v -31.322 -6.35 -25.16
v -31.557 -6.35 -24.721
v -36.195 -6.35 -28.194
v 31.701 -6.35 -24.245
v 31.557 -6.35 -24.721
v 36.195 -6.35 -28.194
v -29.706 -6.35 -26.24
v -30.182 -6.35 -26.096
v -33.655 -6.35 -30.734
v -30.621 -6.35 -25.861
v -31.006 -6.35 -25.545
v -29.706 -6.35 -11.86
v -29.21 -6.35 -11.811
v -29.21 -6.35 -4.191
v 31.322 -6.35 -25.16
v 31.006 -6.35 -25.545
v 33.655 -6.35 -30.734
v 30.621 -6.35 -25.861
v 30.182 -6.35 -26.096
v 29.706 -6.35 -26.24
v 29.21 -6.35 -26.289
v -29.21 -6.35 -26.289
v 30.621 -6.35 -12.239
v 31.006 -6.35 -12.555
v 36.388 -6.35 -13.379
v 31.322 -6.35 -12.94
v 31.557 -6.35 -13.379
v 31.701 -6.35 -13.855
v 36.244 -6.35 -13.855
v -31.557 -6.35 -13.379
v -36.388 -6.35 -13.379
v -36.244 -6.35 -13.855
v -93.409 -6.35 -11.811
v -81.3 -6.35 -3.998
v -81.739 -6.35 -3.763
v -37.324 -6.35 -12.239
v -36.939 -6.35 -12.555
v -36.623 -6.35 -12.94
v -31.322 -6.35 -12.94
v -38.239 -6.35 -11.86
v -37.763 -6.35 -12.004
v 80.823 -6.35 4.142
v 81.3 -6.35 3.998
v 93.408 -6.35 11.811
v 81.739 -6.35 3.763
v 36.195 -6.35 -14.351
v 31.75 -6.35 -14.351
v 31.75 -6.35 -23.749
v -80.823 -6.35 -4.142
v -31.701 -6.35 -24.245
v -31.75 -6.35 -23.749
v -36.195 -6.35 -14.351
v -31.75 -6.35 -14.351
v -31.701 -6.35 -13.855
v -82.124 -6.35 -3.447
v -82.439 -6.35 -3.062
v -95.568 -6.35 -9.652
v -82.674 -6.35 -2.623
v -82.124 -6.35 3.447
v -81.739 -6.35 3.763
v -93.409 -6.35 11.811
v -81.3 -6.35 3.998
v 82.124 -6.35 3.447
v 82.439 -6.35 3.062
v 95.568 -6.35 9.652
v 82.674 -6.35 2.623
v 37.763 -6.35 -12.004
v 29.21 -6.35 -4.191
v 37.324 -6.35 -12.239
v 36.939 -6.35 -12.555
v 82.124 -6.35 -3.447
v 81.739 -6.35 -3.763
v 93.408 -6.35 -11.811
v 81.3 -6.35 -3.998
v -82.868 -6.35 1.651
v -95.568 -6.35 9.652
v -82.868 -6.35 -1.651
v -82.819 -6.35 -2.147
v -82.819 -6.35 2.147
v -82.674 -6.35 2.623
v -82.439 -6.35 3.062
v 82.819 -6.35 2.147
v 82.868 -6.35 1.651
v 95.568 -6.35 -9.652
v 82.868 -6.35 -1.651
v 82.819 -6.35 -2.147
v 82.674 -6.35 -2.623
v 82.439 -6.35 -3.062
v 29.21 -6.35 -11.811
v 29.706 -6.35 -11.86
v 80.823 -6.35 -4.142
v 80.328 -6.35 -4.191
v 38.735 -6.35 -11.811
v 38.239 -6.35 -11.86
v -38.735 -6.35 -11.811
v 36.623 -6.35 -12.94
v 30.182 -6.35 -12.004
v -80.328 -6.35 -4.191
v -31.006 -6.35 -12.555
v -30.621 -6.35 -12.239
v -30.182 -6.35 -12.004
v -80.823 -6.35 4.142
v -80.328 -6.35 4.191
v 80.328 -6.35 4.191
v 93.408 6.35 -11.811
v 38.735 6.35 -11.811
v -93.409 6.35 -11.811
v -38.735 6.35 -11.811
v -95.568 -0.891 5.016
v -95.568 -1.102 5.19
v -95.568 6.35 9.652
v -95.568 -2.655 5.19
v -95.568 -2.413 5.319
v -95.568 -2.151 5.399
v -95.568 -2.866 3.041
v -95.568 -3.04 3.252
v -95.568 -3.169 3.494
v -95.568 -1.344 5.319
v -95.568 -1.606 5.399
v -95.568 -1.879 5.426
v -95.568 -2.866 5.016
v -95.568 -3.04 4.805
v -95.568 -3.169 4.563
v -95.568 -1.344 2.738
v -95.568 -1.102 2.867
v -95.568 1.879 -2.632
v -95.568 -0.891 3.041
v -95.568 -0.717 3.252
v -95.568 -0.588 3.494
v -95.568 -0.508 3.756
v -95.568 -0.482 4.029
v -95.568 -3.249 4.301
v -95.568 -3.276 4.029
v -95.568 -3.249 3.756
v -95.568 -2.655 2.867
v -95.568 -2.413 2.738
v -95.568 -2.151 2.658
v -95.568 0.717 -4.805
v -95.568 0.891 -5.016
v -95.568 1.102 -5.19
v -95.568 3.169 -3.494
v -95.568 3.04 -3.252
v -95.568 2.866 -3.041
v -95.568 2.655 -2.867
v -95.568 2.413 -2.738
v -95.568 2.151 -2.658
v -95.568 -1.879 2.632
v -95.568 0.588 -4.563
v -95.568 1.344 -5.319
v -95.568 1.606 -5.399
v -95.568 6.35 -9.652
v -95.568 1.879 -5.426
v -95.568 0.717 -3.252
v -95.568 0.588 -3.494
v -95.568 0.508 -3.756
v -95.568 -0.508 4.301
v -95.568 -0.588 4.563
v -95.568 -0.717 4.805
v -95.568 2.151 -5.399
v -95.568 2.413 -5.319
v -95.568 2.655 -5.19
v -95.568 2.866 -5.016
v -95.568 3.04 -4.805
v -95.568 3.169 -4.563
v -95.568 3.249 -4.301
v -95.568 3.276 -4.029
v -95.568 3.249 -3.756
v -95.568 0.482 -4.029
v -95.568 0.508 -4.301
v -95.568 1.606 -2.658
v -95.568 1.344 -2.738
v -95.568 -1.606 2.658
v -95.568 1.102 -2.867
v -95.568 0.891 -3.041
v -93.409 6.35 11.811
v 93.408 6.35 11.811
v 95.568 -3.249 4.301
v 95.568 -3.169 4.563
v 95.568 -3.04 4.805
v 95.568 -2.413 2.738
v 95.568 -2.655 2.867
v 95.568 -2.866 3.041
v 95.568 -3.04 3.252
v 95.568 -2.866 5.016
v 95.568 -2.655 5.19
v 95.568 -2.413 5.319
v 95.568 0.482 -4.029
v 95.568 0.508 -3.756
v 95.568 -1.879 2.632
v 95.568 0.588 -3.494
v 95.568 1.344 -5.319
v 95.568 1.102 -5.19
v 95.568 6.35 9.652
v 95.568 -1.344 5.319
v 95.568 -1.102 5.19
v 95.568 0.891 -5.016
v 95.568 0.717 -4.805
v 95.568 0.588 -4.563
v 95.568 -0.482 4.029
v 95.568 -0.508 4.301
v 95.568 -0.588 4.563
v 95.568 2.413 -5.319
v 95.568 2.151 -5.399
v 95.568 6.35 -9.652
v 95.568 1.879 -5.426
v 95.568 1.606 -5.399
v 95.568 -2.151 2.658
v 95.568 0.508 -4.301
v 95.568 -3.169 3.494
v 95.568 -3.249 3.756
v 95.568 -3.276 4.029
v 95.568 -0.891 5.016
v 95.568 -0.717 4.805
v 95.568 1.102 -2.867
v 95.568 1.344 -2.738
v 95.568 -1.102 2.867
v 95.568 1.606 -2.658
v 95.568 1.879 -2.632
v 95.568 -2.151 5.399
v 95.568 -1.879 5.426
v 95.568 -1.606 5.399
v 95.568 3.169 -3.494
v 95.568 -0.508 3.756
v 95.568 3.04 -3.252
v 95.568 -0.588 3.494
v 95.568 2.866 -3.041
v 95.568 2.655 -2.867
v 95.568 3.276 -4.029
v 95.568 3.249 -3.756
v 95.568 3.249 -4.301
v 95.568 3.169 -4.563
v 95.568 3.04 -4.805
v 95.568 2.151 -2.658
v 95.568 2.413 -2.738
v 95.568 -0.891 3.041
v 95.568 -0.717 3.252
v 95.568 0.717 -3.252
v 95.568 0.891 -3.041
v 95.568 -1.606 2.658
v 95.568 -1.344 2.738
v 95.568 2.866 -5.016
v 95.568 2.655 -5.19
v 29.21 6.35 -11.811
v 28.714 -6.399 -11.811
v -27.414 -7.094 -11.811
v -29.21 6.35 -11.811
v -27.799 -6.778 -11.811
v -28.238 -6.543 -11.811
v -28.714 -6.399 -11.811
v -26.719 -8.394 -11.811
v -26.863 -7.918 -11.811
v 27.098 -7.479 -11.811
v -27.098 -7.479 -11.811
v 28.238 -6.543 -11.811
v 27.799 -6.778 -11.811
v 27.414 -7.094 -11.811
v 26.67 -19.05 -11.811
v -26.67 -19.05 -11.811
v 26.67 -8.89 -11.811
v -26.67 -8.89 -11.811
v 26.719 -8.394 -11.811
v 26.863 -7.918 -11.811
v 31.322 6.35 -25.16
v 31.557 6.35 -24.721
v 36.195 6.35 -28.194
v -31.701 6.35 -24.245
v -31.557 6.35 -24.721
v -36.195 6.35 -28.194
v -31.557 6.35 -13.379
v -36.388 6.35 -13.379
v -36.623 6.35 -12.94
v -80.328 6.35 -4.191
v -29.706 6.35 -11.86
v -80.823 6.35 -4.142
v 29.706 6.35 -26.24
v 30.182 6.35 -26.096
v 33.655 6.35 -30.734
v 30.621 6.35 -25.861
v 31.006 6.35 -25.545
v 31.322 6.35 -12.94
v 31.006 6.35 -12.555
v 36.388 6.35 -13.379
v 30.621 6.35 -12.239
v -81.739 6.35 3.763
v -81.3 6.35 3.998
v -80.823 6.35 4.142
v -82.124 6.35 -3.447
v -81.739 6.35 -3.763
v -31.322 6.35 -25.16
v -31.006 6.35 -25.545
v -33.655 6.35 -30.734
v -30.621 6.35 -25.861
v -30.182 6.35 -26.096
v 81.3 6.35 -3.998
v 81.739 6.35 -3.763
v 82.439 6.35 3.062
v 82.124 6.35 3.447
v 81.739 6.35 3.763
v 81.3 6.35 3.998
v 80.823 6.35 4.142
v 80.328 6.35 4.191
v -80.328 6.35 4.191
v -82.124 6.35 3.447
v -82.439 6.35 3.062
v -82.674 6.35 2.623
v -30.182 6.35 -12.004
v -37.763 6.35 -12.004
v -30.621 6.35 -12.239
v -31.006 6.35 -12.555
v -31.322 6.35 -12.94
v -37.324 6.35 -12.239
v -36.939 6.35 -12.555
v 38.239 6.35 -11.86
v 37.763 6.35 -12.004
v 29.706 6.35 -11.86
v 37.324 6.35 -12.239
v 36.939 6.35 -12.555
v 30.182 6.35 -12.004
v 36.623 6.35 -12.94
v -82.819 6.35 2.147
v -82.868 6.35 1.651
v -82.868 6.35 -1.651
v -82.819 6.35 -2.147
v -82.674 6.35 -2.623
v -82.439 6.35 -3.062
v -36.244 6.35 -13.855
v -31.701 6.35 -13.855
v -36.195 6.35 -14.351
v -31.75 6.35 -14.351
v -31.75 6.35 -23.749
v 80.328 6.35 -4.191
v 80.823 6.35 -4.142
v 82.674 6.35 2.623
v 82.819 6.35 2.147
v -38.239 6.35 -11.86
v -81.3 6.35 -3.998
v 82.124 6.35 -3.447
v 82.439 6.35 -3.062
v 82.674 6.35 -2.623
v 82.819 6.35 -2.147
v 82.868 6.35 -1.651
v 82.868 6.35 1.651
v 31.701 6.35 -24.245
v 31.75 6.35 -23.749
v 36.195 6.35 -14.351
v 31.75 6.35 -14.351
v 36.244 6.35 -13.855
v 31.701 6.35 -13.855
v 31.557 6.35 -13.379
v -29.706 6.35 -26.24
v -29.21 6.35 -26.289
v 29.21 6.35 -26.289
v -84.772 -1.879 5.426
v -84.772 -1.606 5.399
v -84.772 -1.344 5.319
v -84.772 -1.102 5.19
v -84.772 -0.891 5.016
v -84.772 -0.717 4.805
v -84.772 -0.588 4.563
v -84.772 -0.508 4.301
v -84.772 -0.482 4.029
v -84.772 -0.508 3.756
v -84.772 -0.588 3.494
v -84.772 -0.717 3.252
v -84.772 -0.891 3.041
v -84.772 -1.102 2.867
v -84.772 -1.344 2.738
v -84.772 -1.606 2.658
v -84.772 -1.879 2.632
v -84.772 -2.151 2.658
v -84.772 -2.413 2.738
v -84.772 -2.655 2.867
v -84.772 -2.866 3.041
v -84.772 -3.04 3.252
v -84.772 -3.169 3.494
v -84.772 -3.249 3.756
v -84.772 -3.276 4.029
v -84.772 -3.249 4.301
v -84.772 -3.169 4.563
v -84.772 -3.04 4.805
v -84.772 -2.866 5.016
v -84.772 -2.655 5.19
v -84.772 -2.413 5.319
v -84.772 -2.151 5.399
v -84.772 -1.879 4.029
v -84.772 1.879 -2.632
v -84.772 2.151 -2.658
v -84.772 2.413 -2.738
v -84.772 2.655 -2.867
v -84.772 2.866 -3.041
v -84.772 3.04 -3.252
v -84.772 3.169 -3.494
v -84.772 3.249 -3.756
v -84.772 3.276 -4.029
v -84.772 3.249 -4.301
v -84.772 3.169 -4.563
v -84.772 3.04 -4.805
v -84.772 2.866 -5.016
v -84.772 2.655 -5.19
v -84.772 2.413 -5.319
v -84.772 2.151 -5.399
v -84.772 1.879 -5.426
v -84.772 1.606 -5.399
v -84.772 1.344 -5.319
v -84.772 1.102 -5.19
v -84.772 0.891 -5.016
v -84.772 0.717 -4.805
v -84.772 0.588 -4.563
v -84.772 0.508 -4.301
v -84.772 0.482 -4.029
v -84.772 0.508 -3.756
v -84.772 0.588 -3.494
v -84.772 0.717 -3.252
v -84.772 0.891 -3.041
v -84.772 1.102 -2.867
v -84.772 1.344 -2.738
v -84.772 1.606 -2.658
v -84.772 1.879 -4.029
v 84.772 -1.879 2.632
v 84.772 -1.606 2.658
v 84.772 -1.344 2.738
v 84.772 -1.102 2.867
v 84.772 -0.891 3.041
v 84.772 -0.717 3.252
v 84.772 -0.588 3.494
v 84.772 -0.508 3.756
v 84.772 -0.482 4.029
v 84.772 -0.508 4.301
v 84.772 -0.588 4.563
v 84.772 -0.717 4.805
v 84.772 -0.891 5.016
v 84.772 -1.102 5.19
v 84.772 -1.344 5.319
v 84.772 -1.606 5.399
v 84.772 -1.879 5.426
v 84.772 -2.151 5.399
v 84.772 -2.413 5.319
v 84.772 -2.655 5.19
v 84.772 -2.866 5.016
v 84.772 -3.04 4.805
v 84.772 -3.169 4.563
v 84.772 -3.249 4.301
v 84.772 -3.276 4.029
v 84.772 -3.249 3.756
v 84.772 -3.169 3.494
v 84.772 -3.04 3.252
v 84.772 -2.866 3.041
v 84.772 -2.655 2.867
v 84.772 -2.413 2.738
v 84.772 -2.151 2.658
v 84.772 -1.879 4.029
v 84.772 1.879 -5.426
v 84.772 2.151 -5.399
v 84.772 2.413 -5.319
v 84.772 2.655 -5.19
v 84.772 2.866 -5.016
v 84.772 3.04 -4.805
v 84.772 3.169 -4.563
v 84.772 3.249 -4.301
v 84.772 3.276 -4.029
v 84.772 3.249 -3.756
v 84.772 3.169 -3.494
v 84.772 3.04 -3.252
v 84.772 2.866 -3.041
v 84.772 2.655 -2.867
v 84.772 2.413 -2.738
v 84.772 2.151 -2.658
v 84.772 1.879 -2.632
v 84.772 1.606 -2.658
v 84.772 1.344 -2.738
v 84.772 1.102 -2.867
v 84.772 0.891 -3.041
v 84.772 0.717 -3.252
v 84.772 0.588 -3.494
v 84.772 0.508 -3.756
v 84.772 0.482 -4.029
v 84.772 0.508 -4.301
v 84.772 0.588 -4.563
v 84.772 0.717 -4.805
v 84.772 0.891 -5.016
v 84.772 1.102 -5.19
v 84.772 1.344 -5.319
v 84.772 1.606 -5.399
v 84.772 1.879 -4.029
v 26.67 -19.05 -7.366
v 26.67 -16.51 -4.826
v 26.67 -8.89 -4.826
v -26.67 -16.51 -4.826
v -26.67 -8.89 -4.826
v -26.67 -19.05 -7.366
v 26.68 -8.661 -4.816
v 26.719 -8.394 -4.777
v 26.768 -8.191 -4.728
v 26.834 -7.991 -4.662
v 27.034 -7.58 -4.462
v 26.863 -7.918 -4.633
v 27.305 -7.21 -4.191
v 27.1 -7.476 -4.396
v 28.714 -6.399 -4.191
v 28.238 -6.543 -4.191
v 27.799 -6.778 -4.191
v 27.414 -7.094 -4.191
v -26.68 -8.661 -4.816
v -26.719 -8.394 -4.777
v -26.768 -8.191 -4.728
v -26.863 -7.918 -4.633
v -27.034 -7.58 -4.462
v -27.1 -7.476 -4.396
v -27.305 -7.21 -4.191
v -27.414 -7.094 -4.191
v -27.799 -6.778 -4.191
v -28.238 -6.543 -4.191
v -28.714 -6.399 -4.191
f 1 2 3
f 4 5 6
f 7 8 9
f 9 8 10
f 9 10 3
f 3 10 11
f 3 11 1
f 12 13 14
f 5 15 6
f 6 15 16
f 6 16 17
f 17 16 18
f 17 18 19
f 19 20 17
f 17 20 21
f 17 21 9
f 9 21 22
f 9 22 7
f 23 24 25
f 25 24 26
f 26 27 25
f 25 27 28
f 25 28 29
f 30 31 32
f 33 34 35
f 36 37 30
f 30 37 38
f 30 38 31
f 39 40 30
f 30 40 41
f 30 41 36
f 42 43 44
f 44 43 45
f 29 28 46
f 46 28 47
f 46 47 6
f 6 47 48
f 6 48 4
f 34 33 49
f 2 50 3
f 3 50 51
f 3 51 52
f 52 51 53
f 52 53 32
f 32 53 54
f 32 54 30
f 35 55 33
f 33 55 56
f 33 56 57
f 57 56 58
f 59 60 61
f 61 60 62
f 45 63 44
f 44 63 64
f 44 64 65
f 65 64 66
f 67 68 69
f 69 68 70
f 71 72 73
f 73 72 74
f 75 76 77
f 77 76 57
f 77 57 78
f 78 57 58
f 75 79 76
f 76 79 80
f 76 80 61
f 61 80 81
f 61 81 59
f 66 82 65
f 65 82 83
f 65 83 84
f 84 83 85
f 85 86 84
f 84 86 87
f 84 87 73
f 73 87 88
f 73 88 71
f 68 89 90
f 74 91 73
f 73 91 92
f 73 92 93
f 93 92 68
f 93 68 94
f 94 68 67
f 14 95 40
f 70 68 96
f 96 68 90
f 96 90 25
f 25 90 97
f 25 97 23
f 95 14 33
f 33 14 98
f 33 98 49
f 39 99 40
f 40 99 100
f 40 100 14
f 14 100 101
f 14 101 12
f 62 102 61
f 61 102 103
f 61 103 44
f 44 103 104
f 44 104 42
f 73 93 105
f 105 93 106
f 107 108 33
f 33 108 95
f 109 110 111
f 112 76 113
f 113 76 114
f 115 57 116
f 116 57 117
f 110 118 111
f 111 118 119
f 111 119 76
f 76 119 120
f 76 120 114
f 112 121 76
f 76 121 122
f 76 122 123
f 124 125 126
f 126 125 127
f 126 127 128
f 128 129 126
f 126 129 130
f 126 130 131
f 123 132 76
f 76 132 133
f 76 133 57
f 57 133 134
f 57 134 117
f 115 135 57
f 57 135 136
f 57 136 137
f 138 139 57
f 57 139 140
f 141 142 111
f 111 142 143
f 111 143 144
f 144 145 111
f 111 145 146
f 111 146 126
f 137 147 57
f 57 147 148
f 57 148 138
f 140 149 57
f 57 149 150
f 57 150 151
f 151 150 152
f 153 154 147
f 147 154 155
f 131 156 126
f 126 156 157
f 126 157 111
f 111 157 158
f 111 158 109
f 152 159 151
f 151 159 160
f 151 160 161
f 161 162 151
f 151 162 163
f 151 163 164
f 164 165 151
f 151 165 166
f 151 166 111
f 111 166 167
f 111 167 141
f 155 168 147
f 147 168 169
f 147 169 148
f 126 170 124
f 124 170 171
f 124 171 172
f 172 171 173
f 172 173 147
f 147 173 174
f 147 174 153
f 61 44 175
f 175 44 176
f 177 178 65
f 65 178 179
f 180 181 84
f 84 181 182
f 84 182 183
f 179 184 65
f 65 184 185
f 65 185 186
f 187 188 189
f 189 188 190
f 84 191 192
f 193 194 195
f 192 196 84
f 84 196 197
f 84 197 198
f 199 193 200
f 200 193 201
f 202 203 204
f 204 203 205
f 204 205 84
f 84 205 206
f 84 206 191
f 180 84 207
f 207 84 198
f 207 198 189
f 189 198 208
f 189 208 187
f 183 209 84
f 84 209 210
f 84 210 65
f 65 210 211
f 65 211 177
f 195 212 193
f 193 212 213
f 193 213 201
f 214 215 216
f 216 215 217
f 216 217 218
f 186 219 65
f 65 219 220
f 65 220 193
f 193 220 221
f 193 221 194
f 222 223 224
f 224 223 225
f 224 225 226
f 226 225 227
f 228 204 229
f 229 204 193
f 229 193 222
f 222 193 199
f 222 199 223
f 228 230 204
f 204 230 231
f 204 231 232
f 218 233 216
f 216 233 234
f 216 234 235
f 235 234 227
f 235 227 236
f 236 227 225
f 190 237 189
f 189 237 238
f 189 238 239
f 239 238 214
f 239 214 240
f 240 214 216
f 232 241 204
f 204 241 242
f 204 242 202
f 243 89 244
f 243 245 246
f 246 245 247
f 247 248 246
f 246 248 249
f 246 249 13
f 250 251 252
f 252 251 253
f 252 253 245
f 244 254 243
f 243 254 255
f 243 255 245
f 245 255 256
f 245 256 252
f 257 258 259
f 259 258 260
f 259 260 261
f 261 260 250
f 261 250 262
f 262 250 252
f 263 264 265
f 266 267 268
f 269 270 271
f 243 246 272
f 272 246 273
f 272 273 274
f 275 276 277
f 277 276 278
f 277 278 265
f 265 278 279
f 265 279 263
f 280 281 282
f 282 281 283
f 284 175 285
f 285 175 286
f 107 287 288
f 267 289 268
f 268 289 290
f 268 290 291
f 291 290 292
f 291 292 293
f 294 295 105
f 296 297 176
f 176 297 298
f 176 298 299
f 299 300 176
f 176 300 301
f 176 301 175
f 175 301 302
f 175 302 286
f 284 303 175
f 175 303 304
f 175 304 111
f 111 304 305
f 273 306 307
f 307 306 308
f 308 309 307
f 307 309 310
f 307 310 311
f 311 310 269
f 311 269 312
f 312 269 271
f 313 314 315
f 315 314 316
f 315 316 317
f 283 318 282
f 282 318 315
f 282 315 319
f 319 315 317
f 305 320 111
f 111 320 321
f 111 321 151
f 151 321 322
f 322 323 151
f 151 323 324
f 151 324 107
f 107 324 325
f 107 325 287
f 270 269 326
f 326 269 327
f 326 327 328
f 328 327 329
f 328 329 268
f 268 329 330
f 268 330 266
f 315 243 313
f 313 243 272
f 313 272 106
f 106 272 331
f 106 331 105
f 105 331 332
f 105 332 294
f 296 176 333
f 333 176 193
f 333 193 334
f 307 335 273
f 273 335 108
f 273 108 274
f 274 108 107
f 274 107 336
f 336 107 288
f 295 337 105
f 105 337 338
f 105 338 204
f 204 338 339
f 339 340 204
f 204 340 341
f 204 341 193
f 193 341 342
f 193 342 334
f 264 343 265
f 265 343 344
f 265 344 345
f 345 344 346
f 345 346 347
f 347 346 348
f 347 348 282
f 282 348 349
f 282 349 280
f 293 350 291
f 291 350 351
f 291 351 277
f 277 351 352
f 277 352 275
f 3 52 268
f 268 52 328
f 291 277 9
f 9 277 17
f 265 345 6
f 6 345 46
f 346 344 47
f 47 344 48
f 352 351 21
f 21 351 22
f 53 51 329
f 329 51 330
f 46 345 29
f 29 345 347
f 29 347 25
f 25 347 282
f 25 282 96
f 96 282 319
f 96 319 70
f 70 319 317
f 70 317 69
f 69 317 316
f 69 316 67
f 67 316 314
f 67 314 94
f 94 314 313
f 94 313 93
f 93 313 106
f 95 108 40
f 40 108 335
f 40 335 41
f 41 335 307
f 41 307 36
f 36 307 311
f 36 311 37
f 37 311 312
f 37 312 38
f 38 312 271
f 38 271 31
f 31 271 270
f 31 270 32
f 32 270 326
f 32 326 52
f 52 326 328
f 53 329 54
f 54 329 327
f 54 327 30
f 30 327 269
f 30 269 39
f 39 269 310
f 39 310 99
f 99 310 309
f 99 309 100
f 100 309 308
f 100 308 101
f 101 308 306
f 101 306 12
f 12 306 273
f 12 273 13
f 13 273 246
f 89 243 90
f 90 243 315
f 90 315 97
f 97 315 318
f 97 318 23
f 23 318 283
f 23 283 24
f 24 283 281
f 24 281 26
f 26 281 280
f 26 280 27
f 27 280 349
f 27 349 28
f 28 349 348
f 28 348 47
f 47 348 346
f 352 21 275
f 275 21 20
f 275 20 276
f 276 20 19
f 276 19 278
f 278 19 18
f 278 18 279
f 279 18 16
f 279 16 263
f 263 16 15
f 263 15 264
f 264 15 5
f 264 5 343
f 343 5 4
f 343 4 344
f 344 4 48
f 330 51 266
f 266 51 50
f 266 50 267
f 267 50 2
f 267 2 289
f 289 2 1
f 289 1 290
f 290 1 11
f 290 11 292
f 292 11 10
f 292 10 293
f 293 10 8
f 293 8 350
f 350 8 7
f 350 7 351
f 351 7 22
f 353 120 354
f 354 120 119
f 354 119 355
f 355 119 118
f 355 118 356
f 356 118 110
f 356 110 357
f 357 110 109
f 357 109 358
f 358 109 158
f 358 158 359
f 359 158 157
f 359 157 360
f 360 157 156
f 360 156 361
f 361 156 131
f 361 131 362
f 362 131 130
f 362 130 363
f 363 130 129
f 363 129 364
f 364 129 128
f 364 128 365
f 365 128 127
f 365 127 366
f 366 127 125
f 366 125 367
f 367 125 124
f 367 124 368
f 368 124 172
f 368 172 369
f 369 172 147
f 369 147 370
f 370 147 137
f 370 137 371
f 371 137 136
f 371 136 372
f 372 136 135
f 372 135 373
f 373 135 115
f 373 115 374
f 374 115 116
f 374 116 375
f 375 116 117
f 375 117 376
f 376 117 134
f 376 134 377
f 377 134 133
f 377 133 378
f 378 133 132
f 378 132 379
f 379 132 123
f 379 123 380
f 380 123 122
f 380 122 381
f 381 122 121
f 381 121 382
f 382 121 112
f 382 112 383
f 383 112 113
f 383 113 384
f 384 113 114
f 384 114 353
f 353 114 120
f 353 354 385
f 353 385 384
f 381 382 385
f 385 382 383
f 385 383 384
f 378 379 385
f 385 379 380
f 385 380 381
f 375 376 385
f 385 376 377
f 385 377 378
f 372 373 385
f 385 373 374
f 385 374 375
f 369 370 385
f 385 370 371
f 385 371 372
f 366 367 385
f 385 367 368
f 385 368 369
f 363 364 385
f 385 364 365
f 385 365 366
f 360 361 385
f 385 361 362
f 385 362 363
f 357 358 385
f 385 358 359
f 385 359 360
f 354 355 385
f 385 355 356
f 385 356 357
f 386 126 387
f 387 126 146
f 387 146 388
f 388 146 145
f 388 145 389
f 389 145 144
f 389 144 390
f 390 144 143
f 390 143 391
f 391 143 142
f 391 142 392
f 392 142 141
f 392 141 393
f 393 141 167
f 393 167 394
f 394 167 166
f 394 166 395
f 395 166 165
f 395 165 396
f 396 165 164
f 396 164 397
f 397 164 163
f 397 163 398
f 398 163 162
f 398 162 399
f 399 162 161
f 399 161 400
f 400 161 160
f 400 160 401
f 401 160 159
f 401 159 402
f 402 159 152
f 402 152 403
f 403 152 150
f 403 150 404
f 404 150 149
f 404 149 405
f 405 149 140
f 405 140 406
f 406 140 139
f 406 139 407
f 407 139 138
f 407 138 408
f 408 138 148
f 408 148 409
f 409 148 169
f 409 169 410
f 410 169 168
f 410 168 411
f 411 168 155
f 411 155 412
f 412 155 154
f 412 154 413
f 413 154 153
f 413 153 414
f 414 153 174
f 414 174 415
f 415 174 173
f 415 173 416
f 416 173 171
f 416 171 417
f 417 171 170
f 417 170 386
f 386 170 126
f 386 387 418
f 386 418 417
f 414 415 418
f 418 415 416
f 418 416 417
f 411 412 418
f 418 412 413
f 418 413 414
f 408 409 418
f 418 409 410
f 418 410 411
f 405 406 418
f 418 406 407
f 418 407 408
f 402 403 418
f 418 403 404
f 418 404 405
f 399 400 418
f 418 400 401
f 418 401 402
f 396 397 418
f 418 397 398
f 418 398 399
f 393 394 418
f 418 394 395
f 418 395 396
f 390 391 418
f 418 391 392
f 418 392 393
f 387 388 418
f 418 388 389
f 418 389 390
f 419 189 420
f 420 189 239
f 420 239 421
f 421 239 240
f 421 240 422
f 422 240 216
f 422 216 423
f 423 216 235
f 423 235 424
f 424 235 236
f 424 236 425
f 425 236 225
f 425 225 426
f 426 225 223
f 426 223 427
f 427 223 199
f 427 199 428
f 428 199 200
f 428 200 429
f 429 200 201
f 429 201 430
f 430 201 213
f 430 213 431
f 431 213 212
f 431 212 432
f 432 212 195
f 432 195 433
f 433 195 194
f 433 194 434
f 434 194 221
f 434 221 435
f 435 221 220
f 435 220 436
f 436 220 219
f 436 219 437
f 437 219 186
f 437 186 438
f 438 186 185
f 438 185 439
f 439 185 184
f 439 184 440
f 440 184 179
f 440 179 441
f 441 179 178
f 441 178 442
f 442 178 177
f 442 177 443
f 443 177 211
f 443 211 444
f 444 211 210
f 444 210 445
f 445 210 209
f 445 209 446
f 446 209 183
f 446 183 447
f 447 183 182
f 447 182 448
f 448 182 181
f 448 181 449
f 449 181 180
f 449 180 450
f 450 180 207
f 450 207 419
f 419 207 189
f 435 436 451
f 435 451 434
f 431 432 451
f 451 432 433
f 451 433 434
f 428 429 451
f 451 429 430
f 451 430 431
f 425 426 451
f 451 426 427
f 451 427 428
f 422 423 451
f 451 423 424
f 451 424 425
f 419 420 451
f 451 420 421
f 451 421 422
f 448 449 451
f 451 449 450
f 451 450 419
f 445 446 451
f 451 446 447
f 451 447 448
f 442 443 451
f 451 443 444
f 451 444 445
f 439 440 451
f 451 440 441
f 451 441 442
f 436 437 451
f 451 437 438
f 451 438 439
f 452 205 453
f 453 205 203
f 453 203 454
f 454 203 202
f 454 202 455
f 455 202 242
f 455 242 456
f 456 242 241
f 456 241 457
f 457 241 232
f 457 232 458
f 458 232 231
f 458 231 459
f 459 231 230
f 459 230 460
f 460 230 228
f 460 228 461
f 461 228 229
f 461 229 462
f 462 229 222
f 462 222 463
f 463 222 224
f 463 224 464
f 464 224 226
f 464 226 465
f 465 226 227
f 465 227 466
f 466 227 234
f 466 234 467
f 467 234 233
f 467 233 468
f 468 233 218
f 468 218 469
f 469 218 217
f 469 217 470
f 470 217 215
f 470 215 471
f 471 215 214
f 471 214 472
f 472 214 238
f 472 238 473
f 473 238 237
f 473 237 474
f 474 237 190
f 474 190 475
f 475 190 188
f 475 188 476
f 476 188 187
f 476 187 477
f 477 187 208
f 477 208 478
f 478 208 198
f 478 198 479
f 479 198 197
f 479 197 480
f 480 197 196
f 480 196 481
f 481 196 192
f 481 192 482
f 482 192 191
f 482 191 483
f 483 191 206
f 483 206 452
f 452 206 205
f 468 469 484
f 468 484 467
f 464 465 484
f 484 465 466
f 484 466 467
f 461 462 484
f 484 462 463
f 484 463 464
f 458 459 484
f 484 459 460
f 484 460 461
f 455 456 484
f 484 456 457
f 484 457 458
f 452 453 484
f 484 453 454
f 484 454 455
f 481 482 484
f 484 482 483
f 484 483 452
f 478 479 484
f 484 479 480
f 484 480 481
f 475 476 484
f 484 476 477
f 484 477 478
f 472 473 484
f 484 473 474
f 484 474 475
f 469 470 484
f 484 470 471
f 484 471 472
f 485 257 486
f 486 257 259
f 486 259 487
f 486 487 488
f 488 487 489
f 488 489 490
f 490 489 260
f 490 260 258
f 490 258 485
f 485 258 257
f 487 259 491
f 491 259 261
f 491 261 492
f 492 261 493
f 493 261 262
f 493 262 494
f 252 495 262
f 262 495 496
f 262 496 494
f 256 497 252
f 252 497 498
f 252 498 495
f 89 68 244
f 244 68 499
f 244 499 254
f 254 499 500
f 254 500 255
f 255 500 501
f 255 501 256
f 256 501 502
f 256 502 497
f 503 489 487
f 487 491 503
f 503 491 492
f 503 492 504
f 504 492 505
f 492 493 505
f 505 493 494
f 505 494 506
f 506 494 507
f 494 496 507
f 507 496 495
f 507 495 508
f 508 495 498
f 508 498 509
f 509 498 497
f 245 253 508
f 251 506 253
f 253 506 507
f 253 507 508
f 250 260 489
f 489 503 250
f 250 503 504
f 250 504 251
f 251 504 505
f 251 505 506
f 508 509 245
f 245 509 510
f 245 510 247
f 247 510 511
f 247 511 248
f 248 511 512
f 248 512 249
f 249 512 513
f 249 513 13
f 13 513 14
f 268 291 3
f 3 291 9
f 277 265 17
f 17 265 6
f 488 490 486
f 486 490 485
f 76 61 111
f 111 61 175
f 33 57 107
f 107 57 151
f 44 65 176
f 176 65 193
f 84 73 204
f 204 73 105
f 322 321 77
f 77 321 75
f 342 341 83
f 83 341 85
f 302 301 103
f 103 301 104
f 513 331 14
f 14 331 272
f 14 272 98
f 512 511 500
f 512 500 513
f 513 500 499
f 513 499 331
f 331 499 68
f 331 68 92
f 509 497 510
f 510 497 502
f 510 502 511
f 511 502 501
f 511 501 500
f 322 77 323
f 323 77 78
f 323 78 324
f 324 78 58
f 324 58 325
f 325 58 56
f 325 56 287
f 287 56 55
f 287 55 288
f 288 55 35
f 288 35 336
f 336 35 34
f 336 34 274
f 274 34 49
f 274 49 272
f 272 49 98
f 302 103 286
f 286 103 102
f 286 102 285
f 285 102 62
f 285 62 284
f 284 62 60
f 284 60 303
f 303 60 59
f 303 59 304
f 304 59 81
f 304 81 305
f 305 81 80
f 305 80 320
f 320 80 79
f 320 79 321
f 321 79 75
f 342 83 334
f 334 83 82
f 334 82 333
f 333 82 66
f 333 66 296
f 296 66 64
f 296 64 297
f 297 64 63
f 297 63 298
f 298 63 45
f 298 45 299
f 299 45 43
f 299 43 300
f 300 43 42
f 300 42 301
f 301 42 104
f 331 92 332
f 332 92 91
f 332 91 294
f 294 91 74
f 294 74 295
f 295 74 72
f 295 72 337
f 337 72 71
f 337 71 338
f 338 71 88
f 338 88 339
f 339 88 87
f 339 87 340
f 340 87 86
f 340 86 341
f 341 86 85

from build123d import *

# Parameters (mm, degrees)
SKETCH2_W              = 191.135
SKETCH2_H              = 23.622
MOUNT_BAR_DEPTH        = 6.35
MOUNT_FEATURE_DEPTH    = 12.7
FILLET1_R              = 2.54
SKETCH5_R              = 1.397
MOUNT_HOLES_DEPTH      = 10.795
SKETCH6_W              = 53.34
SKETCH6_H              = 6.985
BOSS_EXTRUDE5_DEPTH    = 12.7
FILLET2_R              = 2.54
CHAMFER1_SIZE          = 2.54
CHAMFER2_SIZE          = 2.159
SKETCH7_W              = 165.735
SKETCH7_H              = 8.382
WEIGHT_REDUCTION_DEPTH = 104.551367988
FILLET3_R              = 2.54


with BuildPart() as part:
    # Sketch2 → Mount-Bar (new, symmetric)
    with BuildSketch(Plane(origin=(0, 0, 0), x_dir=(1, 0, 0), z_dir=(0, 1, 0))):
        Rectangle(SKETCH2_W, SKETCH2_H)
    extrude(amount=MOUNT_BAR_DEPTH, both=True)

    # Sketch4 → Mount-Feature (add)
    with BuildSketch(Plane(origin=(0, 6.35, 0), x_dir=(1, 0, 0), z_dir=(0, 1, 0))):
        Polygon((-31.75, 11.811), (-31.75, 26.289), (31.75, 26.289), (31.75, 11.811), (36.195, 11.811), (36.195, 30.734), (-36.195, 30.734), (-36.195, 11.811), align=None)
    extrude(amount=-MOUNT_FEATURE_DEPTH)

    # Fillet1
    fillet1_edges = [part.edges().sort_by_distance(p)[0] for p in [
        (-31.75, 0, -11.811),
        (-36.195, 0, -11.811),
        (36.195, 0, -11.811),
        (31.75, 0, -11.811),
        (31.75, 0, -26.289),
        (-31.75, 0, -26.289),
    ]]
    fillet(fillet1_edges, radius=FILLET1_R)

    # Sketch5 → Mount-Holes (cut)
    with BuildSketch(Plane.ZY.offset(95.5675)):
        with Locations((-4.028538113, 1.878538173)):
            Circle(SKETCH5_R)
        with Locations((4.028538113, -1.878538173)):
            Circle(SKETCH5_R)
    mount_holes = extrude(amount=-MOUNT_HOLES_DEPTH, mode=Mode.SUBTRACT)

    # Mirror1: Mount-Holes across plane
    add(mount_holes.mirror(Plane(origin=(0, 0, 0), x_dir=(0, 0, 1), z_dir=(1, 0, 0))), mode=Mode.SUBTRACT)

    # Sketch6 → Boss-Extrude5 (add)
    with BuildSketch(Plane.XZ.offset(6.35)):
        with Locations((0, -8.3185)):
            Rectangle(SKETCH6_W, SKETCH6_H)
    extrude(amount=BOSS_EXTRUDE5_DEPTH)

    # Fillet2
    fillet2_edges = [part.edges().sort_by_distance(p)[0] for p in [
        (-26.67, -6.35, -8.3185),
        (0, -6.35, -4.826),
        (26.67, -6.35, -8.3185),
    ]]
    fillet(fillet2_edges, radius=FILLET2_R)

    # Chamfer1
    chamfer1_edges = [part.edges().sort_by_distance(p)[0] for p in [
        (0, -19.05, -4.826),
        (-36.195, 0, -30.734),
        (36.195, 0, -30.734),
    ]]
    chamfer(chamfer1_edges, length=CHAMFER1_SIZE)

    # Chamfer2
    chamfer2_edges = [part.edges().sort_by_distance(p)[0] for p in [
        (-95.5675, 0, -11.811),
        (95.5675, 0, -11.811),
        (95.5675, 0, 11.811),
        (-95.5675, 0, 11.811),
    ]]
    chamfer(chamfer2_edges, length=CHAMFER2_SIZE)

    # Sketch7 → weight-reduction (cut, through all)
    with BuildSketch(Plane(origin=(0, 6.35, 0), x_dir=(1, 0, 0), z_dir=(0, 1, 0))):
        Rectangle(SKETCH7_W, SKETCH7_H)
    extrude(amount=-WEIGHT_REDUCTION_DEPTH, mode=Mode.SUBTRACT)

    # Fillet3
    fillet3_edges = [part.edges().sort_by_distance(p)[0] for p in [
        (-82.8675, 0, 4.191),
        (82.8675, 0, -4.191),
        (82.8675, 0, 4.191),
        (-82.8675, 0, -4.191),
    ]]
    fillet(fillet3_edges, radius=FILLET3_R)


solid = part.part
